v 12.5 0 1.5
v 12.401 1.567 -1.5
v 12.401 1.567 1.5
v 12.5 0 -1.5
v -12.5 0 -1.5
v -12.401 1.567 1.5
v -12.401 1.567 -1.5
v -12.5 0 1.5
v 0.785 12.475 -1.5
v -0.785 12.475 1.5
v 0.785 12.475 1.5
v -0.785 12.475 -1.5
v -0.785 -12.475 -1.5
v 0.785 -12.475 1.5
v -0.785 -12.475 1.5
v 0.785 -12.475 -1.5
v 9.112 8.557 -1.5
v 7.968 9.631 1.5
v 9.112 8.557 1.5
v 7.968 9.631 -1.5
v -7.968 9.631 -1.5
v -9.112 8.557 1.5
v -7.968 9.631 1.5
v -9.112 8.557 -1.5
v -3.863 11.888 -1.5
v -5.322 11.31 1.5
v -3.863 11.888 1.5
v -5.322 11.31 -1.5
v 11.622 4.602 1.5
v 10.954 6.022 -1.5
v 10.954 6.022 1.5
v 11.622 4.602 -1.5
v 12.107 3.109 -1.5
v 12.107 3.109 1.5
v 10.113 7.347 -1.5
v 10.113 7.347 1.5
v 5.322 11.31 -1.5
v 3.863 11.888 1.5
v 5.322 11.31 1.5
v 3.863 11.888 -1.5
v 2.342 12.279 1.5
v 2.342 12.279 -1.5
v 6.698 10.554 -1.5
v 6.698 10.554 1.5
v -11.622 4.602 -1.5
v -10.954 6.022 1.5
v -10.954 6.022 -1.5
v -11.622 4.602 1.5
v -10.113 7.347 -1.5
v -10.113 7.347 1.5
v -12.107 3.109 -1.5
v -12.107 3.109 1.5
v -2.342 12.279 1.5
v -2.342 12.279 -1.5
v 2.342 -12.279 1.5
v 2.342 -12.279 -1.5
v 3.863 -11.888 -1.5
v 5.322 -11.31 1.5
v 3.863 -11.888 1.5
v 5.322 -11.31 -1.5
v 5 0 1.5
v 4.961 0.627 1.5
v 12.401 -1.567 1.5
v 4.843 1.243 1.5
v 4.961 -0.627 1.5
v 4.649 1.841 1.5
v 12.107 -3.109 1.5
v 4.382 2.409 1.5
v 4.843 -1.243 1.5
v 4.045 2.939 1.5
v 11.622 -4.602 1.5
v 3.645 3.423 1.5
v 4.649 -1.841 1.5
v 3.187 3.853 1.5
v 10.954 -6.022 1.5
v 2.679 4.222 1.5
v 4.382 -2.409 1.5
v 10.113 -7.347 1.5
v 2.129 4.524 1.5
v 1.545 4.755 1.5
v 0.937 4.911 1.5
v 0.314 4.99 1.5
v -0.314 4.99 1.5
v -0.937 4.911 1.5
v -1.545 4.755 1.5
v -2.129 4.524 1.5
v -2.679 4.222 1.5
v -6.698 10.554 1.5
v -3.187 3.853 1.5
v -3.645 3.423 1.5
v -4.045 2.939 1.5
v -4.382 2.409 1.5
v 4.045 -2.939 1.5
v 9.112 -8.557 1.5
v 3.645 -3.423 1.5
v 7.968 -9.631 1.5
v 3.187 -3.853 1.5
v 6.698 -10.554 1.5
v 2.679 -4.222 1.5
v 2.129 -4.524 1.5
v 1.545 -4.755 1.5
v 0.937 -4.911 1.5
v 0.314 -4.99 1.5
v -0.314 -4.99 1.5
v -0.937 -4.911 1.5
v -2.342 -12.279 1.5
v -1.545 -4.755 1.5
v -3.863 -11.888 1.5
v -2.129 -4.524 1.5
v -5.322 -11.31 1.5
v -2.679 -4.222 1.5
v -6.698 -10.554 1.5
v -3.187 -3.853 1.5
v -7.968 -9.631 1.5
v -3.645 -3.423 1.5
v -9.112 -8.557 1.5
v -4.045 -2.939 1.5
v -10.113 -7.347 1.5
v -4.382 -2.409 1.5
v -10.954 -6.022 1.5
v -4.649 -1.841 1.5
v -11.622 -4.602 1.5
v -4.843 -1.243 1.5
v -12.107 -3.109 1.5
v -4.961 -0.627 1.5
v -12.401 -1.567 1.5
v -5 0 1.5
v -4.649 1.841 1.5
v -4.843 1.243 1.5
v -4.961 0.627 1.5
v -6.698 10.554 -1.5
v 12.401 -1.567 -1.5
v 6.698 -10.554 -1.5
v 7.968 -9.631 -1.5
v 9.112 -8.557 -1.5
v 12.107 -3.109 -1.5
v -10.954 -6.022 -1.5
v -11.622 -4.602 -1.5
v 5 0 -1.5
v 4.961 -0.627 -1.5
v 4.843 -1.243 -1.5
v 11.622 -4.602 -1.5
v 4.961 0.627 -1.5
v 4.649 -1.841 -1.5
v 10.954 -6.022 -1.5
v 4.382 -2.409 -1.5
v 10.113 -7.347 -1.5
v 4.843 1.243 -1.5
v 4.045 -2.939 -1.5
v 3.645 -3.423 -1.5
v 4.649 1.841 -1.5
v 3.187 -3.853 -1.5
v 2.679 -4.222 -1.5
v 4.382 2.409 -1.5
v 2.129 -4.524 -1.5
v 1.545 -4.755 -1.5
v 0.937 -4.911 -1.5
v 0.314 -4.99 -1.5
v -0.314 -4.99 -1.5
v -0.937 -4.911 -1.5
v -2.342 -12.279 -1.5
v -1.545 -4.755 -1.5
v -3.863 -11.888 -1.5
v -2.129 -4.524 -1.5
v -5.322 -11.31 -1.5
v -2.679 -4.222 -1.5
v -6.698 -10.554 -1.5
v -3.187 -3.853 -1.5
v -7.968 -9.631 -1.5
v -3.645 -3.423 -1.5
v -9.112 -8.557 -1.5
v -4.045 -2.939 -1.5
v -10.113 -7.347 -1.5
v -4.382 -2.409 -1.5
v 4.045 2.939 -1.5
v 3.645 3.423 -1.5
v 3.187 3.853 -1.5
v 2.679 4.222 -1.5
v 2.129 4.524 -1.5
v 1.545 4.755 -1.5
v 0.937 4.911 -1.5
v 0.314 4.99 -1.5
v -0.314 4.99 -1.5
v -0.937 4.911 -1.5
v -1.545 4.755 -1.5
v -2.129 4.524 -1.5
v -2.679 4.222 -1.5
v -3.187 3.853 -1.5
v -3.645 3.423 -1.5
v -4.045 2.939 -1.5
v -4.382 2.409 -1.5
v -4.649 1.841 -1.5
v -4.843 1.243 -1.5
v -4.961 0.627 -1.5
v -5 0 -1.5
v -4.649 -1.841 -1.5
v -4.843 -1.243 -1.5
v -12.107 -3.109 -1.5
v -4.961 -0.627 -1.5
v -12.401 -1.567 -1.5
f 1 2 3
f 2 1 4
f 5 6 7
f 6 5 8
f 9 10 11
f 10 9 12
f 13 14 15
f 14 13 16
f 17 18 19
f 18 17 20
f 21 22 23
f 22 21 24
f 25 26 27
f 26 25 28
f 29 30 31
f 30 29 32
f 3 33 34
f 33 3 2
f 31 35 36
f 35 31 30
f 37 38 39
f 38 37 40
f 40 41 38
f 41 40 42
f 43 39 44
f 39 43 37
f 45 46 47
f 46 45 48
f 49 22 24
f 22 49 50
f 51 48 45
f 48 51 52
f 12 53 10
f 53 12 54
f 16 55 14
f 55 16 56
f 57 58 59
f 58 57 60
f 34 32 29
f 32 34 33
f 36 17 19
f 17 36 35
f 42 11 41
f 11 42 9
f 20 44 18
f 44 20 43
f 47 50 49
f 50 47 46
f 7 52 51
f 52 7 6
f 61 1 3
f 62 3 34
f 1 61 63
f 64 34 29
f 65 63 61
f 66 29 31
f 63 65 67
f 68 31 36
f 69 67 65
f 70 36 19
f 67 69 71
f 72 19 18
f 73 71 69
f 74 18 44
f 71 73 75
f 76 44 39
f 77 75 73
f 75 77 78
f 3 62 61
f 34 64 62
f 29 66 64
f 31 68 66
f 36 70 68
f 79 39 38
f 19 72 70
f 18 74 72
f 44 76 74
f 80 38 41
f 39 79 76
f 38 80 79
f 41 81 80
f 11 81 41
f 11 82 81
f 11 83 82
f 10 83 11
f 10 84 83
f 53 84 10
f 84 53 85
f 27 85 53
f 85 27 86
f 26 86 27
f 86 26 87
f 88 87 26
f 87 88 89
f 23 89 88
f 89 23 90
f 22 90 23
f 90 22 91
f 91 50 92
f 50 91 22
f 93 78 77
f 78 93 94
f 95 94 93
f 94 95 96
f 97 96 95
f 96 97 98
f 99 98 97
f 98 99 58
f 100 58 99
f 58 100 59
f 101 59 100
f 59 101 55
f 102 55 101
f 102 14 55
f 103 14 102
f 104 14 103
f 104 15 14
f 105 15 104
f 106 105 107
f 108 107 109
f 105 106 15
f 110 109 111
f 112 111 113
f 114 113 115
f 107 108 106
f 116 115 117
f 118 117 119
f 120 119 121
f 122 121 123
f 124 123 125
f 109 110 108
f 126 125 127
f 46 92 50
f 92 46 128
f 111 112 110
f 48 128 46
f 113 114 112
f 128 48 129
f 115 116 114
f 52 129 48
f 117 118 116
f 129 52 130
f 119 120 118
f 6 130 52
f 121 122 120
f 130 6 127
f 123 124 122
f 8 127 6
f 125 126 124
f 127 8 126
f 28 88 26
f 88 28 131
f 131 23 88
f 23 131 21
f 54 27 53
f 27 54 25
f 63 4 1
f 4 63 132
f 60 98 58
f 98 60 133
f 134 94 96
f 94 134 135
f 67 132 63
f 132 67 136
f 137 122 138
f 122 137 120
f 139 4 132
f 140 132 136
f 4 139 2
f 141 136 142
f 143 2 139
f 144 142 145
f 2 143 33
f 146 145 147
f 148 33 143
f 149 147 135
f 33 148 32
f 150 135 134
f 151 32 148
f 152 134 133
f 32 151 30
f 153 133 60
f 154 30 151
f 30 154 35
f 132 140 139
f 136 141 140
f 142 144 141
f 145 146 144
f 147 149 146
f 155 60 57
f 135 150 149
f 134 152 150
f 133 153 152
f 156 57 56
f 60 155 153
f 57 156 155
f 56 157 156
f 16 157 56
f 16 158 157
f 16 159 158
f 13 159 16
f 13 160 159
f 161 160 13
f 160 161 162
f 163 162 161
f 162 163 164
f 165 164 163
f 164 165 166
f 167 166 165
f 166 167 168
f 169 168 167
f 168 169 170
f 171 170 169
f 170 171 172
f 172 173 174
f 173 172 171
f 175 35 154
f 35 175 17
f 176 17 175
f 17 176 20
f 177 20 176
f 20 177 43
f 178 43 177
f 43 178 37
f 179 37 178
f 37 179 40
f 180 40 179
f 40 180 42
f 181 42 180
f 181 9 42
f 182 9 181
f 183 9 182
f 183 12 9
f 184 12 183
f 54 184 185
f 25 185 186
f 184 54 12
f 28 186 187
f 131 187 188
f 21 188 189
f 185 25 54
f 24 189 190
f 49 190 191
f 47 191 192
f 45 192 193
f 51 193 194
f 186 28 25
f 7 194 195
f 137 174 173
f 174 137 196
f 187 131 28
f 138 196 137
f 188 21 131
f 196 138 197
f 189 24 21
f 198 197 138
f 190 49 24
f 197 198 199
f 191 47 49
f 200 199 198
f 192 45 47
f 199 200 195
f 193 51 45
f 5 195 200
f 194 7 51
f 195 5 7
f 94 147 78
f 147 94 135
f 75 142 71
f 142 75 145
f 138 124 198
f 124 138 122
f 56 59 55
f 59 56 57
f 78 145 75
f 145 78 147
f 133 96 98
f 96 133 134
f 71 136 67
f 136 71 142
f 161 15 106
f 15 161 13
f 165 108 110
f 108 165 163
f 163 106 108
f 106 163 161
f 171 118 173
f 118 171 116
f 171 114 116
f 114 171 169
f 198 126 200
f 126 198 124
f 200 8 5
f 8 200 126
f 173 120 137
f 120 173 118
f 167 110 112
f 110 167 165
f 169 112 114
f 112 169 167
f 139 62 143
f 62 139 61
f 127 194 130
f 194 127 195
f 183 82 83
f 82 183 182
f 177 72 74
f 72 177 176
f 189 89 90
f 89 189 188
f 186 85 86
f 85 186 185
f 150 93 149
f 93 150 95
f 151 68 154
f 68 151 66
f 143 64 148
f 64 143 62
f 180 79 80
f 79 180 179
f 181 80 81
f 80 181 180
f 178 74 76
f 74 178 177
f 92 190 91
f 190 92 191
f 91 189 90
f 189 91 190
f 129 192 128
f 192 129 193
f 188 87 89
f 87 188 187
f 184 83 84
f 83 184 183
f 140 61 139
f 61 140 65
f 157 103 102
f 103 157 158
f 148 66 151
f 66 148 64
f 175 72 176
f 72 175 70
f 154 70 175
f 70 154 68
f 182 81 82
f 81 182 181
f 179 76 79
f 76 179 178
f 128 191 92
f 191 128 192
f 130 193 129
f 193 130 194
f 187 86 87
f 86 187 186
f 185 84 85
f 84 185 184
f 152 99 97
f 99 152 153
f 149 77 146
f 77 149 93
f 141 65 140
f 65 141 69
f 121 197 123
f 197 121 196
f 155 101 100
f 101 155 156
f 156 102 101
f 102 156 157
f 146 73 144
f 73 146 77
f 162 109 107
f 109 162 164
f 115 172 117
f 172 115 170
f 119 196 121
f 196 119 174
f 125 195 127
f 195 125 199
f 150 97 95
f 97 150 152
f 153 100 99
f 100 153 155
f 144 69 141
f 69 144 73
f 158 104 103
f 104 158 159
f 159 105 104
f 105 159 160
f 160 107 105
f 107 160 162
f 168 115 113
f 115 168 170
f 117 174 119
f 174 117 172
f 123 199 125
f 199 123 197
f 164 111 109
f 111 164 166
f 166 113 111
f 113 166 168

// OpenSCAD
$fn = 50;


difference() {
	union() {
		translate(v = [0, 0, -1.5000000000]) {
			cylinder(h = 3, r = 12.5000000000);
		}
	}
	union() {
		translate(v = [0, 0, -100.0000000000]) {
			cylinder(h = 200, r = 5);
		}
	}
}
